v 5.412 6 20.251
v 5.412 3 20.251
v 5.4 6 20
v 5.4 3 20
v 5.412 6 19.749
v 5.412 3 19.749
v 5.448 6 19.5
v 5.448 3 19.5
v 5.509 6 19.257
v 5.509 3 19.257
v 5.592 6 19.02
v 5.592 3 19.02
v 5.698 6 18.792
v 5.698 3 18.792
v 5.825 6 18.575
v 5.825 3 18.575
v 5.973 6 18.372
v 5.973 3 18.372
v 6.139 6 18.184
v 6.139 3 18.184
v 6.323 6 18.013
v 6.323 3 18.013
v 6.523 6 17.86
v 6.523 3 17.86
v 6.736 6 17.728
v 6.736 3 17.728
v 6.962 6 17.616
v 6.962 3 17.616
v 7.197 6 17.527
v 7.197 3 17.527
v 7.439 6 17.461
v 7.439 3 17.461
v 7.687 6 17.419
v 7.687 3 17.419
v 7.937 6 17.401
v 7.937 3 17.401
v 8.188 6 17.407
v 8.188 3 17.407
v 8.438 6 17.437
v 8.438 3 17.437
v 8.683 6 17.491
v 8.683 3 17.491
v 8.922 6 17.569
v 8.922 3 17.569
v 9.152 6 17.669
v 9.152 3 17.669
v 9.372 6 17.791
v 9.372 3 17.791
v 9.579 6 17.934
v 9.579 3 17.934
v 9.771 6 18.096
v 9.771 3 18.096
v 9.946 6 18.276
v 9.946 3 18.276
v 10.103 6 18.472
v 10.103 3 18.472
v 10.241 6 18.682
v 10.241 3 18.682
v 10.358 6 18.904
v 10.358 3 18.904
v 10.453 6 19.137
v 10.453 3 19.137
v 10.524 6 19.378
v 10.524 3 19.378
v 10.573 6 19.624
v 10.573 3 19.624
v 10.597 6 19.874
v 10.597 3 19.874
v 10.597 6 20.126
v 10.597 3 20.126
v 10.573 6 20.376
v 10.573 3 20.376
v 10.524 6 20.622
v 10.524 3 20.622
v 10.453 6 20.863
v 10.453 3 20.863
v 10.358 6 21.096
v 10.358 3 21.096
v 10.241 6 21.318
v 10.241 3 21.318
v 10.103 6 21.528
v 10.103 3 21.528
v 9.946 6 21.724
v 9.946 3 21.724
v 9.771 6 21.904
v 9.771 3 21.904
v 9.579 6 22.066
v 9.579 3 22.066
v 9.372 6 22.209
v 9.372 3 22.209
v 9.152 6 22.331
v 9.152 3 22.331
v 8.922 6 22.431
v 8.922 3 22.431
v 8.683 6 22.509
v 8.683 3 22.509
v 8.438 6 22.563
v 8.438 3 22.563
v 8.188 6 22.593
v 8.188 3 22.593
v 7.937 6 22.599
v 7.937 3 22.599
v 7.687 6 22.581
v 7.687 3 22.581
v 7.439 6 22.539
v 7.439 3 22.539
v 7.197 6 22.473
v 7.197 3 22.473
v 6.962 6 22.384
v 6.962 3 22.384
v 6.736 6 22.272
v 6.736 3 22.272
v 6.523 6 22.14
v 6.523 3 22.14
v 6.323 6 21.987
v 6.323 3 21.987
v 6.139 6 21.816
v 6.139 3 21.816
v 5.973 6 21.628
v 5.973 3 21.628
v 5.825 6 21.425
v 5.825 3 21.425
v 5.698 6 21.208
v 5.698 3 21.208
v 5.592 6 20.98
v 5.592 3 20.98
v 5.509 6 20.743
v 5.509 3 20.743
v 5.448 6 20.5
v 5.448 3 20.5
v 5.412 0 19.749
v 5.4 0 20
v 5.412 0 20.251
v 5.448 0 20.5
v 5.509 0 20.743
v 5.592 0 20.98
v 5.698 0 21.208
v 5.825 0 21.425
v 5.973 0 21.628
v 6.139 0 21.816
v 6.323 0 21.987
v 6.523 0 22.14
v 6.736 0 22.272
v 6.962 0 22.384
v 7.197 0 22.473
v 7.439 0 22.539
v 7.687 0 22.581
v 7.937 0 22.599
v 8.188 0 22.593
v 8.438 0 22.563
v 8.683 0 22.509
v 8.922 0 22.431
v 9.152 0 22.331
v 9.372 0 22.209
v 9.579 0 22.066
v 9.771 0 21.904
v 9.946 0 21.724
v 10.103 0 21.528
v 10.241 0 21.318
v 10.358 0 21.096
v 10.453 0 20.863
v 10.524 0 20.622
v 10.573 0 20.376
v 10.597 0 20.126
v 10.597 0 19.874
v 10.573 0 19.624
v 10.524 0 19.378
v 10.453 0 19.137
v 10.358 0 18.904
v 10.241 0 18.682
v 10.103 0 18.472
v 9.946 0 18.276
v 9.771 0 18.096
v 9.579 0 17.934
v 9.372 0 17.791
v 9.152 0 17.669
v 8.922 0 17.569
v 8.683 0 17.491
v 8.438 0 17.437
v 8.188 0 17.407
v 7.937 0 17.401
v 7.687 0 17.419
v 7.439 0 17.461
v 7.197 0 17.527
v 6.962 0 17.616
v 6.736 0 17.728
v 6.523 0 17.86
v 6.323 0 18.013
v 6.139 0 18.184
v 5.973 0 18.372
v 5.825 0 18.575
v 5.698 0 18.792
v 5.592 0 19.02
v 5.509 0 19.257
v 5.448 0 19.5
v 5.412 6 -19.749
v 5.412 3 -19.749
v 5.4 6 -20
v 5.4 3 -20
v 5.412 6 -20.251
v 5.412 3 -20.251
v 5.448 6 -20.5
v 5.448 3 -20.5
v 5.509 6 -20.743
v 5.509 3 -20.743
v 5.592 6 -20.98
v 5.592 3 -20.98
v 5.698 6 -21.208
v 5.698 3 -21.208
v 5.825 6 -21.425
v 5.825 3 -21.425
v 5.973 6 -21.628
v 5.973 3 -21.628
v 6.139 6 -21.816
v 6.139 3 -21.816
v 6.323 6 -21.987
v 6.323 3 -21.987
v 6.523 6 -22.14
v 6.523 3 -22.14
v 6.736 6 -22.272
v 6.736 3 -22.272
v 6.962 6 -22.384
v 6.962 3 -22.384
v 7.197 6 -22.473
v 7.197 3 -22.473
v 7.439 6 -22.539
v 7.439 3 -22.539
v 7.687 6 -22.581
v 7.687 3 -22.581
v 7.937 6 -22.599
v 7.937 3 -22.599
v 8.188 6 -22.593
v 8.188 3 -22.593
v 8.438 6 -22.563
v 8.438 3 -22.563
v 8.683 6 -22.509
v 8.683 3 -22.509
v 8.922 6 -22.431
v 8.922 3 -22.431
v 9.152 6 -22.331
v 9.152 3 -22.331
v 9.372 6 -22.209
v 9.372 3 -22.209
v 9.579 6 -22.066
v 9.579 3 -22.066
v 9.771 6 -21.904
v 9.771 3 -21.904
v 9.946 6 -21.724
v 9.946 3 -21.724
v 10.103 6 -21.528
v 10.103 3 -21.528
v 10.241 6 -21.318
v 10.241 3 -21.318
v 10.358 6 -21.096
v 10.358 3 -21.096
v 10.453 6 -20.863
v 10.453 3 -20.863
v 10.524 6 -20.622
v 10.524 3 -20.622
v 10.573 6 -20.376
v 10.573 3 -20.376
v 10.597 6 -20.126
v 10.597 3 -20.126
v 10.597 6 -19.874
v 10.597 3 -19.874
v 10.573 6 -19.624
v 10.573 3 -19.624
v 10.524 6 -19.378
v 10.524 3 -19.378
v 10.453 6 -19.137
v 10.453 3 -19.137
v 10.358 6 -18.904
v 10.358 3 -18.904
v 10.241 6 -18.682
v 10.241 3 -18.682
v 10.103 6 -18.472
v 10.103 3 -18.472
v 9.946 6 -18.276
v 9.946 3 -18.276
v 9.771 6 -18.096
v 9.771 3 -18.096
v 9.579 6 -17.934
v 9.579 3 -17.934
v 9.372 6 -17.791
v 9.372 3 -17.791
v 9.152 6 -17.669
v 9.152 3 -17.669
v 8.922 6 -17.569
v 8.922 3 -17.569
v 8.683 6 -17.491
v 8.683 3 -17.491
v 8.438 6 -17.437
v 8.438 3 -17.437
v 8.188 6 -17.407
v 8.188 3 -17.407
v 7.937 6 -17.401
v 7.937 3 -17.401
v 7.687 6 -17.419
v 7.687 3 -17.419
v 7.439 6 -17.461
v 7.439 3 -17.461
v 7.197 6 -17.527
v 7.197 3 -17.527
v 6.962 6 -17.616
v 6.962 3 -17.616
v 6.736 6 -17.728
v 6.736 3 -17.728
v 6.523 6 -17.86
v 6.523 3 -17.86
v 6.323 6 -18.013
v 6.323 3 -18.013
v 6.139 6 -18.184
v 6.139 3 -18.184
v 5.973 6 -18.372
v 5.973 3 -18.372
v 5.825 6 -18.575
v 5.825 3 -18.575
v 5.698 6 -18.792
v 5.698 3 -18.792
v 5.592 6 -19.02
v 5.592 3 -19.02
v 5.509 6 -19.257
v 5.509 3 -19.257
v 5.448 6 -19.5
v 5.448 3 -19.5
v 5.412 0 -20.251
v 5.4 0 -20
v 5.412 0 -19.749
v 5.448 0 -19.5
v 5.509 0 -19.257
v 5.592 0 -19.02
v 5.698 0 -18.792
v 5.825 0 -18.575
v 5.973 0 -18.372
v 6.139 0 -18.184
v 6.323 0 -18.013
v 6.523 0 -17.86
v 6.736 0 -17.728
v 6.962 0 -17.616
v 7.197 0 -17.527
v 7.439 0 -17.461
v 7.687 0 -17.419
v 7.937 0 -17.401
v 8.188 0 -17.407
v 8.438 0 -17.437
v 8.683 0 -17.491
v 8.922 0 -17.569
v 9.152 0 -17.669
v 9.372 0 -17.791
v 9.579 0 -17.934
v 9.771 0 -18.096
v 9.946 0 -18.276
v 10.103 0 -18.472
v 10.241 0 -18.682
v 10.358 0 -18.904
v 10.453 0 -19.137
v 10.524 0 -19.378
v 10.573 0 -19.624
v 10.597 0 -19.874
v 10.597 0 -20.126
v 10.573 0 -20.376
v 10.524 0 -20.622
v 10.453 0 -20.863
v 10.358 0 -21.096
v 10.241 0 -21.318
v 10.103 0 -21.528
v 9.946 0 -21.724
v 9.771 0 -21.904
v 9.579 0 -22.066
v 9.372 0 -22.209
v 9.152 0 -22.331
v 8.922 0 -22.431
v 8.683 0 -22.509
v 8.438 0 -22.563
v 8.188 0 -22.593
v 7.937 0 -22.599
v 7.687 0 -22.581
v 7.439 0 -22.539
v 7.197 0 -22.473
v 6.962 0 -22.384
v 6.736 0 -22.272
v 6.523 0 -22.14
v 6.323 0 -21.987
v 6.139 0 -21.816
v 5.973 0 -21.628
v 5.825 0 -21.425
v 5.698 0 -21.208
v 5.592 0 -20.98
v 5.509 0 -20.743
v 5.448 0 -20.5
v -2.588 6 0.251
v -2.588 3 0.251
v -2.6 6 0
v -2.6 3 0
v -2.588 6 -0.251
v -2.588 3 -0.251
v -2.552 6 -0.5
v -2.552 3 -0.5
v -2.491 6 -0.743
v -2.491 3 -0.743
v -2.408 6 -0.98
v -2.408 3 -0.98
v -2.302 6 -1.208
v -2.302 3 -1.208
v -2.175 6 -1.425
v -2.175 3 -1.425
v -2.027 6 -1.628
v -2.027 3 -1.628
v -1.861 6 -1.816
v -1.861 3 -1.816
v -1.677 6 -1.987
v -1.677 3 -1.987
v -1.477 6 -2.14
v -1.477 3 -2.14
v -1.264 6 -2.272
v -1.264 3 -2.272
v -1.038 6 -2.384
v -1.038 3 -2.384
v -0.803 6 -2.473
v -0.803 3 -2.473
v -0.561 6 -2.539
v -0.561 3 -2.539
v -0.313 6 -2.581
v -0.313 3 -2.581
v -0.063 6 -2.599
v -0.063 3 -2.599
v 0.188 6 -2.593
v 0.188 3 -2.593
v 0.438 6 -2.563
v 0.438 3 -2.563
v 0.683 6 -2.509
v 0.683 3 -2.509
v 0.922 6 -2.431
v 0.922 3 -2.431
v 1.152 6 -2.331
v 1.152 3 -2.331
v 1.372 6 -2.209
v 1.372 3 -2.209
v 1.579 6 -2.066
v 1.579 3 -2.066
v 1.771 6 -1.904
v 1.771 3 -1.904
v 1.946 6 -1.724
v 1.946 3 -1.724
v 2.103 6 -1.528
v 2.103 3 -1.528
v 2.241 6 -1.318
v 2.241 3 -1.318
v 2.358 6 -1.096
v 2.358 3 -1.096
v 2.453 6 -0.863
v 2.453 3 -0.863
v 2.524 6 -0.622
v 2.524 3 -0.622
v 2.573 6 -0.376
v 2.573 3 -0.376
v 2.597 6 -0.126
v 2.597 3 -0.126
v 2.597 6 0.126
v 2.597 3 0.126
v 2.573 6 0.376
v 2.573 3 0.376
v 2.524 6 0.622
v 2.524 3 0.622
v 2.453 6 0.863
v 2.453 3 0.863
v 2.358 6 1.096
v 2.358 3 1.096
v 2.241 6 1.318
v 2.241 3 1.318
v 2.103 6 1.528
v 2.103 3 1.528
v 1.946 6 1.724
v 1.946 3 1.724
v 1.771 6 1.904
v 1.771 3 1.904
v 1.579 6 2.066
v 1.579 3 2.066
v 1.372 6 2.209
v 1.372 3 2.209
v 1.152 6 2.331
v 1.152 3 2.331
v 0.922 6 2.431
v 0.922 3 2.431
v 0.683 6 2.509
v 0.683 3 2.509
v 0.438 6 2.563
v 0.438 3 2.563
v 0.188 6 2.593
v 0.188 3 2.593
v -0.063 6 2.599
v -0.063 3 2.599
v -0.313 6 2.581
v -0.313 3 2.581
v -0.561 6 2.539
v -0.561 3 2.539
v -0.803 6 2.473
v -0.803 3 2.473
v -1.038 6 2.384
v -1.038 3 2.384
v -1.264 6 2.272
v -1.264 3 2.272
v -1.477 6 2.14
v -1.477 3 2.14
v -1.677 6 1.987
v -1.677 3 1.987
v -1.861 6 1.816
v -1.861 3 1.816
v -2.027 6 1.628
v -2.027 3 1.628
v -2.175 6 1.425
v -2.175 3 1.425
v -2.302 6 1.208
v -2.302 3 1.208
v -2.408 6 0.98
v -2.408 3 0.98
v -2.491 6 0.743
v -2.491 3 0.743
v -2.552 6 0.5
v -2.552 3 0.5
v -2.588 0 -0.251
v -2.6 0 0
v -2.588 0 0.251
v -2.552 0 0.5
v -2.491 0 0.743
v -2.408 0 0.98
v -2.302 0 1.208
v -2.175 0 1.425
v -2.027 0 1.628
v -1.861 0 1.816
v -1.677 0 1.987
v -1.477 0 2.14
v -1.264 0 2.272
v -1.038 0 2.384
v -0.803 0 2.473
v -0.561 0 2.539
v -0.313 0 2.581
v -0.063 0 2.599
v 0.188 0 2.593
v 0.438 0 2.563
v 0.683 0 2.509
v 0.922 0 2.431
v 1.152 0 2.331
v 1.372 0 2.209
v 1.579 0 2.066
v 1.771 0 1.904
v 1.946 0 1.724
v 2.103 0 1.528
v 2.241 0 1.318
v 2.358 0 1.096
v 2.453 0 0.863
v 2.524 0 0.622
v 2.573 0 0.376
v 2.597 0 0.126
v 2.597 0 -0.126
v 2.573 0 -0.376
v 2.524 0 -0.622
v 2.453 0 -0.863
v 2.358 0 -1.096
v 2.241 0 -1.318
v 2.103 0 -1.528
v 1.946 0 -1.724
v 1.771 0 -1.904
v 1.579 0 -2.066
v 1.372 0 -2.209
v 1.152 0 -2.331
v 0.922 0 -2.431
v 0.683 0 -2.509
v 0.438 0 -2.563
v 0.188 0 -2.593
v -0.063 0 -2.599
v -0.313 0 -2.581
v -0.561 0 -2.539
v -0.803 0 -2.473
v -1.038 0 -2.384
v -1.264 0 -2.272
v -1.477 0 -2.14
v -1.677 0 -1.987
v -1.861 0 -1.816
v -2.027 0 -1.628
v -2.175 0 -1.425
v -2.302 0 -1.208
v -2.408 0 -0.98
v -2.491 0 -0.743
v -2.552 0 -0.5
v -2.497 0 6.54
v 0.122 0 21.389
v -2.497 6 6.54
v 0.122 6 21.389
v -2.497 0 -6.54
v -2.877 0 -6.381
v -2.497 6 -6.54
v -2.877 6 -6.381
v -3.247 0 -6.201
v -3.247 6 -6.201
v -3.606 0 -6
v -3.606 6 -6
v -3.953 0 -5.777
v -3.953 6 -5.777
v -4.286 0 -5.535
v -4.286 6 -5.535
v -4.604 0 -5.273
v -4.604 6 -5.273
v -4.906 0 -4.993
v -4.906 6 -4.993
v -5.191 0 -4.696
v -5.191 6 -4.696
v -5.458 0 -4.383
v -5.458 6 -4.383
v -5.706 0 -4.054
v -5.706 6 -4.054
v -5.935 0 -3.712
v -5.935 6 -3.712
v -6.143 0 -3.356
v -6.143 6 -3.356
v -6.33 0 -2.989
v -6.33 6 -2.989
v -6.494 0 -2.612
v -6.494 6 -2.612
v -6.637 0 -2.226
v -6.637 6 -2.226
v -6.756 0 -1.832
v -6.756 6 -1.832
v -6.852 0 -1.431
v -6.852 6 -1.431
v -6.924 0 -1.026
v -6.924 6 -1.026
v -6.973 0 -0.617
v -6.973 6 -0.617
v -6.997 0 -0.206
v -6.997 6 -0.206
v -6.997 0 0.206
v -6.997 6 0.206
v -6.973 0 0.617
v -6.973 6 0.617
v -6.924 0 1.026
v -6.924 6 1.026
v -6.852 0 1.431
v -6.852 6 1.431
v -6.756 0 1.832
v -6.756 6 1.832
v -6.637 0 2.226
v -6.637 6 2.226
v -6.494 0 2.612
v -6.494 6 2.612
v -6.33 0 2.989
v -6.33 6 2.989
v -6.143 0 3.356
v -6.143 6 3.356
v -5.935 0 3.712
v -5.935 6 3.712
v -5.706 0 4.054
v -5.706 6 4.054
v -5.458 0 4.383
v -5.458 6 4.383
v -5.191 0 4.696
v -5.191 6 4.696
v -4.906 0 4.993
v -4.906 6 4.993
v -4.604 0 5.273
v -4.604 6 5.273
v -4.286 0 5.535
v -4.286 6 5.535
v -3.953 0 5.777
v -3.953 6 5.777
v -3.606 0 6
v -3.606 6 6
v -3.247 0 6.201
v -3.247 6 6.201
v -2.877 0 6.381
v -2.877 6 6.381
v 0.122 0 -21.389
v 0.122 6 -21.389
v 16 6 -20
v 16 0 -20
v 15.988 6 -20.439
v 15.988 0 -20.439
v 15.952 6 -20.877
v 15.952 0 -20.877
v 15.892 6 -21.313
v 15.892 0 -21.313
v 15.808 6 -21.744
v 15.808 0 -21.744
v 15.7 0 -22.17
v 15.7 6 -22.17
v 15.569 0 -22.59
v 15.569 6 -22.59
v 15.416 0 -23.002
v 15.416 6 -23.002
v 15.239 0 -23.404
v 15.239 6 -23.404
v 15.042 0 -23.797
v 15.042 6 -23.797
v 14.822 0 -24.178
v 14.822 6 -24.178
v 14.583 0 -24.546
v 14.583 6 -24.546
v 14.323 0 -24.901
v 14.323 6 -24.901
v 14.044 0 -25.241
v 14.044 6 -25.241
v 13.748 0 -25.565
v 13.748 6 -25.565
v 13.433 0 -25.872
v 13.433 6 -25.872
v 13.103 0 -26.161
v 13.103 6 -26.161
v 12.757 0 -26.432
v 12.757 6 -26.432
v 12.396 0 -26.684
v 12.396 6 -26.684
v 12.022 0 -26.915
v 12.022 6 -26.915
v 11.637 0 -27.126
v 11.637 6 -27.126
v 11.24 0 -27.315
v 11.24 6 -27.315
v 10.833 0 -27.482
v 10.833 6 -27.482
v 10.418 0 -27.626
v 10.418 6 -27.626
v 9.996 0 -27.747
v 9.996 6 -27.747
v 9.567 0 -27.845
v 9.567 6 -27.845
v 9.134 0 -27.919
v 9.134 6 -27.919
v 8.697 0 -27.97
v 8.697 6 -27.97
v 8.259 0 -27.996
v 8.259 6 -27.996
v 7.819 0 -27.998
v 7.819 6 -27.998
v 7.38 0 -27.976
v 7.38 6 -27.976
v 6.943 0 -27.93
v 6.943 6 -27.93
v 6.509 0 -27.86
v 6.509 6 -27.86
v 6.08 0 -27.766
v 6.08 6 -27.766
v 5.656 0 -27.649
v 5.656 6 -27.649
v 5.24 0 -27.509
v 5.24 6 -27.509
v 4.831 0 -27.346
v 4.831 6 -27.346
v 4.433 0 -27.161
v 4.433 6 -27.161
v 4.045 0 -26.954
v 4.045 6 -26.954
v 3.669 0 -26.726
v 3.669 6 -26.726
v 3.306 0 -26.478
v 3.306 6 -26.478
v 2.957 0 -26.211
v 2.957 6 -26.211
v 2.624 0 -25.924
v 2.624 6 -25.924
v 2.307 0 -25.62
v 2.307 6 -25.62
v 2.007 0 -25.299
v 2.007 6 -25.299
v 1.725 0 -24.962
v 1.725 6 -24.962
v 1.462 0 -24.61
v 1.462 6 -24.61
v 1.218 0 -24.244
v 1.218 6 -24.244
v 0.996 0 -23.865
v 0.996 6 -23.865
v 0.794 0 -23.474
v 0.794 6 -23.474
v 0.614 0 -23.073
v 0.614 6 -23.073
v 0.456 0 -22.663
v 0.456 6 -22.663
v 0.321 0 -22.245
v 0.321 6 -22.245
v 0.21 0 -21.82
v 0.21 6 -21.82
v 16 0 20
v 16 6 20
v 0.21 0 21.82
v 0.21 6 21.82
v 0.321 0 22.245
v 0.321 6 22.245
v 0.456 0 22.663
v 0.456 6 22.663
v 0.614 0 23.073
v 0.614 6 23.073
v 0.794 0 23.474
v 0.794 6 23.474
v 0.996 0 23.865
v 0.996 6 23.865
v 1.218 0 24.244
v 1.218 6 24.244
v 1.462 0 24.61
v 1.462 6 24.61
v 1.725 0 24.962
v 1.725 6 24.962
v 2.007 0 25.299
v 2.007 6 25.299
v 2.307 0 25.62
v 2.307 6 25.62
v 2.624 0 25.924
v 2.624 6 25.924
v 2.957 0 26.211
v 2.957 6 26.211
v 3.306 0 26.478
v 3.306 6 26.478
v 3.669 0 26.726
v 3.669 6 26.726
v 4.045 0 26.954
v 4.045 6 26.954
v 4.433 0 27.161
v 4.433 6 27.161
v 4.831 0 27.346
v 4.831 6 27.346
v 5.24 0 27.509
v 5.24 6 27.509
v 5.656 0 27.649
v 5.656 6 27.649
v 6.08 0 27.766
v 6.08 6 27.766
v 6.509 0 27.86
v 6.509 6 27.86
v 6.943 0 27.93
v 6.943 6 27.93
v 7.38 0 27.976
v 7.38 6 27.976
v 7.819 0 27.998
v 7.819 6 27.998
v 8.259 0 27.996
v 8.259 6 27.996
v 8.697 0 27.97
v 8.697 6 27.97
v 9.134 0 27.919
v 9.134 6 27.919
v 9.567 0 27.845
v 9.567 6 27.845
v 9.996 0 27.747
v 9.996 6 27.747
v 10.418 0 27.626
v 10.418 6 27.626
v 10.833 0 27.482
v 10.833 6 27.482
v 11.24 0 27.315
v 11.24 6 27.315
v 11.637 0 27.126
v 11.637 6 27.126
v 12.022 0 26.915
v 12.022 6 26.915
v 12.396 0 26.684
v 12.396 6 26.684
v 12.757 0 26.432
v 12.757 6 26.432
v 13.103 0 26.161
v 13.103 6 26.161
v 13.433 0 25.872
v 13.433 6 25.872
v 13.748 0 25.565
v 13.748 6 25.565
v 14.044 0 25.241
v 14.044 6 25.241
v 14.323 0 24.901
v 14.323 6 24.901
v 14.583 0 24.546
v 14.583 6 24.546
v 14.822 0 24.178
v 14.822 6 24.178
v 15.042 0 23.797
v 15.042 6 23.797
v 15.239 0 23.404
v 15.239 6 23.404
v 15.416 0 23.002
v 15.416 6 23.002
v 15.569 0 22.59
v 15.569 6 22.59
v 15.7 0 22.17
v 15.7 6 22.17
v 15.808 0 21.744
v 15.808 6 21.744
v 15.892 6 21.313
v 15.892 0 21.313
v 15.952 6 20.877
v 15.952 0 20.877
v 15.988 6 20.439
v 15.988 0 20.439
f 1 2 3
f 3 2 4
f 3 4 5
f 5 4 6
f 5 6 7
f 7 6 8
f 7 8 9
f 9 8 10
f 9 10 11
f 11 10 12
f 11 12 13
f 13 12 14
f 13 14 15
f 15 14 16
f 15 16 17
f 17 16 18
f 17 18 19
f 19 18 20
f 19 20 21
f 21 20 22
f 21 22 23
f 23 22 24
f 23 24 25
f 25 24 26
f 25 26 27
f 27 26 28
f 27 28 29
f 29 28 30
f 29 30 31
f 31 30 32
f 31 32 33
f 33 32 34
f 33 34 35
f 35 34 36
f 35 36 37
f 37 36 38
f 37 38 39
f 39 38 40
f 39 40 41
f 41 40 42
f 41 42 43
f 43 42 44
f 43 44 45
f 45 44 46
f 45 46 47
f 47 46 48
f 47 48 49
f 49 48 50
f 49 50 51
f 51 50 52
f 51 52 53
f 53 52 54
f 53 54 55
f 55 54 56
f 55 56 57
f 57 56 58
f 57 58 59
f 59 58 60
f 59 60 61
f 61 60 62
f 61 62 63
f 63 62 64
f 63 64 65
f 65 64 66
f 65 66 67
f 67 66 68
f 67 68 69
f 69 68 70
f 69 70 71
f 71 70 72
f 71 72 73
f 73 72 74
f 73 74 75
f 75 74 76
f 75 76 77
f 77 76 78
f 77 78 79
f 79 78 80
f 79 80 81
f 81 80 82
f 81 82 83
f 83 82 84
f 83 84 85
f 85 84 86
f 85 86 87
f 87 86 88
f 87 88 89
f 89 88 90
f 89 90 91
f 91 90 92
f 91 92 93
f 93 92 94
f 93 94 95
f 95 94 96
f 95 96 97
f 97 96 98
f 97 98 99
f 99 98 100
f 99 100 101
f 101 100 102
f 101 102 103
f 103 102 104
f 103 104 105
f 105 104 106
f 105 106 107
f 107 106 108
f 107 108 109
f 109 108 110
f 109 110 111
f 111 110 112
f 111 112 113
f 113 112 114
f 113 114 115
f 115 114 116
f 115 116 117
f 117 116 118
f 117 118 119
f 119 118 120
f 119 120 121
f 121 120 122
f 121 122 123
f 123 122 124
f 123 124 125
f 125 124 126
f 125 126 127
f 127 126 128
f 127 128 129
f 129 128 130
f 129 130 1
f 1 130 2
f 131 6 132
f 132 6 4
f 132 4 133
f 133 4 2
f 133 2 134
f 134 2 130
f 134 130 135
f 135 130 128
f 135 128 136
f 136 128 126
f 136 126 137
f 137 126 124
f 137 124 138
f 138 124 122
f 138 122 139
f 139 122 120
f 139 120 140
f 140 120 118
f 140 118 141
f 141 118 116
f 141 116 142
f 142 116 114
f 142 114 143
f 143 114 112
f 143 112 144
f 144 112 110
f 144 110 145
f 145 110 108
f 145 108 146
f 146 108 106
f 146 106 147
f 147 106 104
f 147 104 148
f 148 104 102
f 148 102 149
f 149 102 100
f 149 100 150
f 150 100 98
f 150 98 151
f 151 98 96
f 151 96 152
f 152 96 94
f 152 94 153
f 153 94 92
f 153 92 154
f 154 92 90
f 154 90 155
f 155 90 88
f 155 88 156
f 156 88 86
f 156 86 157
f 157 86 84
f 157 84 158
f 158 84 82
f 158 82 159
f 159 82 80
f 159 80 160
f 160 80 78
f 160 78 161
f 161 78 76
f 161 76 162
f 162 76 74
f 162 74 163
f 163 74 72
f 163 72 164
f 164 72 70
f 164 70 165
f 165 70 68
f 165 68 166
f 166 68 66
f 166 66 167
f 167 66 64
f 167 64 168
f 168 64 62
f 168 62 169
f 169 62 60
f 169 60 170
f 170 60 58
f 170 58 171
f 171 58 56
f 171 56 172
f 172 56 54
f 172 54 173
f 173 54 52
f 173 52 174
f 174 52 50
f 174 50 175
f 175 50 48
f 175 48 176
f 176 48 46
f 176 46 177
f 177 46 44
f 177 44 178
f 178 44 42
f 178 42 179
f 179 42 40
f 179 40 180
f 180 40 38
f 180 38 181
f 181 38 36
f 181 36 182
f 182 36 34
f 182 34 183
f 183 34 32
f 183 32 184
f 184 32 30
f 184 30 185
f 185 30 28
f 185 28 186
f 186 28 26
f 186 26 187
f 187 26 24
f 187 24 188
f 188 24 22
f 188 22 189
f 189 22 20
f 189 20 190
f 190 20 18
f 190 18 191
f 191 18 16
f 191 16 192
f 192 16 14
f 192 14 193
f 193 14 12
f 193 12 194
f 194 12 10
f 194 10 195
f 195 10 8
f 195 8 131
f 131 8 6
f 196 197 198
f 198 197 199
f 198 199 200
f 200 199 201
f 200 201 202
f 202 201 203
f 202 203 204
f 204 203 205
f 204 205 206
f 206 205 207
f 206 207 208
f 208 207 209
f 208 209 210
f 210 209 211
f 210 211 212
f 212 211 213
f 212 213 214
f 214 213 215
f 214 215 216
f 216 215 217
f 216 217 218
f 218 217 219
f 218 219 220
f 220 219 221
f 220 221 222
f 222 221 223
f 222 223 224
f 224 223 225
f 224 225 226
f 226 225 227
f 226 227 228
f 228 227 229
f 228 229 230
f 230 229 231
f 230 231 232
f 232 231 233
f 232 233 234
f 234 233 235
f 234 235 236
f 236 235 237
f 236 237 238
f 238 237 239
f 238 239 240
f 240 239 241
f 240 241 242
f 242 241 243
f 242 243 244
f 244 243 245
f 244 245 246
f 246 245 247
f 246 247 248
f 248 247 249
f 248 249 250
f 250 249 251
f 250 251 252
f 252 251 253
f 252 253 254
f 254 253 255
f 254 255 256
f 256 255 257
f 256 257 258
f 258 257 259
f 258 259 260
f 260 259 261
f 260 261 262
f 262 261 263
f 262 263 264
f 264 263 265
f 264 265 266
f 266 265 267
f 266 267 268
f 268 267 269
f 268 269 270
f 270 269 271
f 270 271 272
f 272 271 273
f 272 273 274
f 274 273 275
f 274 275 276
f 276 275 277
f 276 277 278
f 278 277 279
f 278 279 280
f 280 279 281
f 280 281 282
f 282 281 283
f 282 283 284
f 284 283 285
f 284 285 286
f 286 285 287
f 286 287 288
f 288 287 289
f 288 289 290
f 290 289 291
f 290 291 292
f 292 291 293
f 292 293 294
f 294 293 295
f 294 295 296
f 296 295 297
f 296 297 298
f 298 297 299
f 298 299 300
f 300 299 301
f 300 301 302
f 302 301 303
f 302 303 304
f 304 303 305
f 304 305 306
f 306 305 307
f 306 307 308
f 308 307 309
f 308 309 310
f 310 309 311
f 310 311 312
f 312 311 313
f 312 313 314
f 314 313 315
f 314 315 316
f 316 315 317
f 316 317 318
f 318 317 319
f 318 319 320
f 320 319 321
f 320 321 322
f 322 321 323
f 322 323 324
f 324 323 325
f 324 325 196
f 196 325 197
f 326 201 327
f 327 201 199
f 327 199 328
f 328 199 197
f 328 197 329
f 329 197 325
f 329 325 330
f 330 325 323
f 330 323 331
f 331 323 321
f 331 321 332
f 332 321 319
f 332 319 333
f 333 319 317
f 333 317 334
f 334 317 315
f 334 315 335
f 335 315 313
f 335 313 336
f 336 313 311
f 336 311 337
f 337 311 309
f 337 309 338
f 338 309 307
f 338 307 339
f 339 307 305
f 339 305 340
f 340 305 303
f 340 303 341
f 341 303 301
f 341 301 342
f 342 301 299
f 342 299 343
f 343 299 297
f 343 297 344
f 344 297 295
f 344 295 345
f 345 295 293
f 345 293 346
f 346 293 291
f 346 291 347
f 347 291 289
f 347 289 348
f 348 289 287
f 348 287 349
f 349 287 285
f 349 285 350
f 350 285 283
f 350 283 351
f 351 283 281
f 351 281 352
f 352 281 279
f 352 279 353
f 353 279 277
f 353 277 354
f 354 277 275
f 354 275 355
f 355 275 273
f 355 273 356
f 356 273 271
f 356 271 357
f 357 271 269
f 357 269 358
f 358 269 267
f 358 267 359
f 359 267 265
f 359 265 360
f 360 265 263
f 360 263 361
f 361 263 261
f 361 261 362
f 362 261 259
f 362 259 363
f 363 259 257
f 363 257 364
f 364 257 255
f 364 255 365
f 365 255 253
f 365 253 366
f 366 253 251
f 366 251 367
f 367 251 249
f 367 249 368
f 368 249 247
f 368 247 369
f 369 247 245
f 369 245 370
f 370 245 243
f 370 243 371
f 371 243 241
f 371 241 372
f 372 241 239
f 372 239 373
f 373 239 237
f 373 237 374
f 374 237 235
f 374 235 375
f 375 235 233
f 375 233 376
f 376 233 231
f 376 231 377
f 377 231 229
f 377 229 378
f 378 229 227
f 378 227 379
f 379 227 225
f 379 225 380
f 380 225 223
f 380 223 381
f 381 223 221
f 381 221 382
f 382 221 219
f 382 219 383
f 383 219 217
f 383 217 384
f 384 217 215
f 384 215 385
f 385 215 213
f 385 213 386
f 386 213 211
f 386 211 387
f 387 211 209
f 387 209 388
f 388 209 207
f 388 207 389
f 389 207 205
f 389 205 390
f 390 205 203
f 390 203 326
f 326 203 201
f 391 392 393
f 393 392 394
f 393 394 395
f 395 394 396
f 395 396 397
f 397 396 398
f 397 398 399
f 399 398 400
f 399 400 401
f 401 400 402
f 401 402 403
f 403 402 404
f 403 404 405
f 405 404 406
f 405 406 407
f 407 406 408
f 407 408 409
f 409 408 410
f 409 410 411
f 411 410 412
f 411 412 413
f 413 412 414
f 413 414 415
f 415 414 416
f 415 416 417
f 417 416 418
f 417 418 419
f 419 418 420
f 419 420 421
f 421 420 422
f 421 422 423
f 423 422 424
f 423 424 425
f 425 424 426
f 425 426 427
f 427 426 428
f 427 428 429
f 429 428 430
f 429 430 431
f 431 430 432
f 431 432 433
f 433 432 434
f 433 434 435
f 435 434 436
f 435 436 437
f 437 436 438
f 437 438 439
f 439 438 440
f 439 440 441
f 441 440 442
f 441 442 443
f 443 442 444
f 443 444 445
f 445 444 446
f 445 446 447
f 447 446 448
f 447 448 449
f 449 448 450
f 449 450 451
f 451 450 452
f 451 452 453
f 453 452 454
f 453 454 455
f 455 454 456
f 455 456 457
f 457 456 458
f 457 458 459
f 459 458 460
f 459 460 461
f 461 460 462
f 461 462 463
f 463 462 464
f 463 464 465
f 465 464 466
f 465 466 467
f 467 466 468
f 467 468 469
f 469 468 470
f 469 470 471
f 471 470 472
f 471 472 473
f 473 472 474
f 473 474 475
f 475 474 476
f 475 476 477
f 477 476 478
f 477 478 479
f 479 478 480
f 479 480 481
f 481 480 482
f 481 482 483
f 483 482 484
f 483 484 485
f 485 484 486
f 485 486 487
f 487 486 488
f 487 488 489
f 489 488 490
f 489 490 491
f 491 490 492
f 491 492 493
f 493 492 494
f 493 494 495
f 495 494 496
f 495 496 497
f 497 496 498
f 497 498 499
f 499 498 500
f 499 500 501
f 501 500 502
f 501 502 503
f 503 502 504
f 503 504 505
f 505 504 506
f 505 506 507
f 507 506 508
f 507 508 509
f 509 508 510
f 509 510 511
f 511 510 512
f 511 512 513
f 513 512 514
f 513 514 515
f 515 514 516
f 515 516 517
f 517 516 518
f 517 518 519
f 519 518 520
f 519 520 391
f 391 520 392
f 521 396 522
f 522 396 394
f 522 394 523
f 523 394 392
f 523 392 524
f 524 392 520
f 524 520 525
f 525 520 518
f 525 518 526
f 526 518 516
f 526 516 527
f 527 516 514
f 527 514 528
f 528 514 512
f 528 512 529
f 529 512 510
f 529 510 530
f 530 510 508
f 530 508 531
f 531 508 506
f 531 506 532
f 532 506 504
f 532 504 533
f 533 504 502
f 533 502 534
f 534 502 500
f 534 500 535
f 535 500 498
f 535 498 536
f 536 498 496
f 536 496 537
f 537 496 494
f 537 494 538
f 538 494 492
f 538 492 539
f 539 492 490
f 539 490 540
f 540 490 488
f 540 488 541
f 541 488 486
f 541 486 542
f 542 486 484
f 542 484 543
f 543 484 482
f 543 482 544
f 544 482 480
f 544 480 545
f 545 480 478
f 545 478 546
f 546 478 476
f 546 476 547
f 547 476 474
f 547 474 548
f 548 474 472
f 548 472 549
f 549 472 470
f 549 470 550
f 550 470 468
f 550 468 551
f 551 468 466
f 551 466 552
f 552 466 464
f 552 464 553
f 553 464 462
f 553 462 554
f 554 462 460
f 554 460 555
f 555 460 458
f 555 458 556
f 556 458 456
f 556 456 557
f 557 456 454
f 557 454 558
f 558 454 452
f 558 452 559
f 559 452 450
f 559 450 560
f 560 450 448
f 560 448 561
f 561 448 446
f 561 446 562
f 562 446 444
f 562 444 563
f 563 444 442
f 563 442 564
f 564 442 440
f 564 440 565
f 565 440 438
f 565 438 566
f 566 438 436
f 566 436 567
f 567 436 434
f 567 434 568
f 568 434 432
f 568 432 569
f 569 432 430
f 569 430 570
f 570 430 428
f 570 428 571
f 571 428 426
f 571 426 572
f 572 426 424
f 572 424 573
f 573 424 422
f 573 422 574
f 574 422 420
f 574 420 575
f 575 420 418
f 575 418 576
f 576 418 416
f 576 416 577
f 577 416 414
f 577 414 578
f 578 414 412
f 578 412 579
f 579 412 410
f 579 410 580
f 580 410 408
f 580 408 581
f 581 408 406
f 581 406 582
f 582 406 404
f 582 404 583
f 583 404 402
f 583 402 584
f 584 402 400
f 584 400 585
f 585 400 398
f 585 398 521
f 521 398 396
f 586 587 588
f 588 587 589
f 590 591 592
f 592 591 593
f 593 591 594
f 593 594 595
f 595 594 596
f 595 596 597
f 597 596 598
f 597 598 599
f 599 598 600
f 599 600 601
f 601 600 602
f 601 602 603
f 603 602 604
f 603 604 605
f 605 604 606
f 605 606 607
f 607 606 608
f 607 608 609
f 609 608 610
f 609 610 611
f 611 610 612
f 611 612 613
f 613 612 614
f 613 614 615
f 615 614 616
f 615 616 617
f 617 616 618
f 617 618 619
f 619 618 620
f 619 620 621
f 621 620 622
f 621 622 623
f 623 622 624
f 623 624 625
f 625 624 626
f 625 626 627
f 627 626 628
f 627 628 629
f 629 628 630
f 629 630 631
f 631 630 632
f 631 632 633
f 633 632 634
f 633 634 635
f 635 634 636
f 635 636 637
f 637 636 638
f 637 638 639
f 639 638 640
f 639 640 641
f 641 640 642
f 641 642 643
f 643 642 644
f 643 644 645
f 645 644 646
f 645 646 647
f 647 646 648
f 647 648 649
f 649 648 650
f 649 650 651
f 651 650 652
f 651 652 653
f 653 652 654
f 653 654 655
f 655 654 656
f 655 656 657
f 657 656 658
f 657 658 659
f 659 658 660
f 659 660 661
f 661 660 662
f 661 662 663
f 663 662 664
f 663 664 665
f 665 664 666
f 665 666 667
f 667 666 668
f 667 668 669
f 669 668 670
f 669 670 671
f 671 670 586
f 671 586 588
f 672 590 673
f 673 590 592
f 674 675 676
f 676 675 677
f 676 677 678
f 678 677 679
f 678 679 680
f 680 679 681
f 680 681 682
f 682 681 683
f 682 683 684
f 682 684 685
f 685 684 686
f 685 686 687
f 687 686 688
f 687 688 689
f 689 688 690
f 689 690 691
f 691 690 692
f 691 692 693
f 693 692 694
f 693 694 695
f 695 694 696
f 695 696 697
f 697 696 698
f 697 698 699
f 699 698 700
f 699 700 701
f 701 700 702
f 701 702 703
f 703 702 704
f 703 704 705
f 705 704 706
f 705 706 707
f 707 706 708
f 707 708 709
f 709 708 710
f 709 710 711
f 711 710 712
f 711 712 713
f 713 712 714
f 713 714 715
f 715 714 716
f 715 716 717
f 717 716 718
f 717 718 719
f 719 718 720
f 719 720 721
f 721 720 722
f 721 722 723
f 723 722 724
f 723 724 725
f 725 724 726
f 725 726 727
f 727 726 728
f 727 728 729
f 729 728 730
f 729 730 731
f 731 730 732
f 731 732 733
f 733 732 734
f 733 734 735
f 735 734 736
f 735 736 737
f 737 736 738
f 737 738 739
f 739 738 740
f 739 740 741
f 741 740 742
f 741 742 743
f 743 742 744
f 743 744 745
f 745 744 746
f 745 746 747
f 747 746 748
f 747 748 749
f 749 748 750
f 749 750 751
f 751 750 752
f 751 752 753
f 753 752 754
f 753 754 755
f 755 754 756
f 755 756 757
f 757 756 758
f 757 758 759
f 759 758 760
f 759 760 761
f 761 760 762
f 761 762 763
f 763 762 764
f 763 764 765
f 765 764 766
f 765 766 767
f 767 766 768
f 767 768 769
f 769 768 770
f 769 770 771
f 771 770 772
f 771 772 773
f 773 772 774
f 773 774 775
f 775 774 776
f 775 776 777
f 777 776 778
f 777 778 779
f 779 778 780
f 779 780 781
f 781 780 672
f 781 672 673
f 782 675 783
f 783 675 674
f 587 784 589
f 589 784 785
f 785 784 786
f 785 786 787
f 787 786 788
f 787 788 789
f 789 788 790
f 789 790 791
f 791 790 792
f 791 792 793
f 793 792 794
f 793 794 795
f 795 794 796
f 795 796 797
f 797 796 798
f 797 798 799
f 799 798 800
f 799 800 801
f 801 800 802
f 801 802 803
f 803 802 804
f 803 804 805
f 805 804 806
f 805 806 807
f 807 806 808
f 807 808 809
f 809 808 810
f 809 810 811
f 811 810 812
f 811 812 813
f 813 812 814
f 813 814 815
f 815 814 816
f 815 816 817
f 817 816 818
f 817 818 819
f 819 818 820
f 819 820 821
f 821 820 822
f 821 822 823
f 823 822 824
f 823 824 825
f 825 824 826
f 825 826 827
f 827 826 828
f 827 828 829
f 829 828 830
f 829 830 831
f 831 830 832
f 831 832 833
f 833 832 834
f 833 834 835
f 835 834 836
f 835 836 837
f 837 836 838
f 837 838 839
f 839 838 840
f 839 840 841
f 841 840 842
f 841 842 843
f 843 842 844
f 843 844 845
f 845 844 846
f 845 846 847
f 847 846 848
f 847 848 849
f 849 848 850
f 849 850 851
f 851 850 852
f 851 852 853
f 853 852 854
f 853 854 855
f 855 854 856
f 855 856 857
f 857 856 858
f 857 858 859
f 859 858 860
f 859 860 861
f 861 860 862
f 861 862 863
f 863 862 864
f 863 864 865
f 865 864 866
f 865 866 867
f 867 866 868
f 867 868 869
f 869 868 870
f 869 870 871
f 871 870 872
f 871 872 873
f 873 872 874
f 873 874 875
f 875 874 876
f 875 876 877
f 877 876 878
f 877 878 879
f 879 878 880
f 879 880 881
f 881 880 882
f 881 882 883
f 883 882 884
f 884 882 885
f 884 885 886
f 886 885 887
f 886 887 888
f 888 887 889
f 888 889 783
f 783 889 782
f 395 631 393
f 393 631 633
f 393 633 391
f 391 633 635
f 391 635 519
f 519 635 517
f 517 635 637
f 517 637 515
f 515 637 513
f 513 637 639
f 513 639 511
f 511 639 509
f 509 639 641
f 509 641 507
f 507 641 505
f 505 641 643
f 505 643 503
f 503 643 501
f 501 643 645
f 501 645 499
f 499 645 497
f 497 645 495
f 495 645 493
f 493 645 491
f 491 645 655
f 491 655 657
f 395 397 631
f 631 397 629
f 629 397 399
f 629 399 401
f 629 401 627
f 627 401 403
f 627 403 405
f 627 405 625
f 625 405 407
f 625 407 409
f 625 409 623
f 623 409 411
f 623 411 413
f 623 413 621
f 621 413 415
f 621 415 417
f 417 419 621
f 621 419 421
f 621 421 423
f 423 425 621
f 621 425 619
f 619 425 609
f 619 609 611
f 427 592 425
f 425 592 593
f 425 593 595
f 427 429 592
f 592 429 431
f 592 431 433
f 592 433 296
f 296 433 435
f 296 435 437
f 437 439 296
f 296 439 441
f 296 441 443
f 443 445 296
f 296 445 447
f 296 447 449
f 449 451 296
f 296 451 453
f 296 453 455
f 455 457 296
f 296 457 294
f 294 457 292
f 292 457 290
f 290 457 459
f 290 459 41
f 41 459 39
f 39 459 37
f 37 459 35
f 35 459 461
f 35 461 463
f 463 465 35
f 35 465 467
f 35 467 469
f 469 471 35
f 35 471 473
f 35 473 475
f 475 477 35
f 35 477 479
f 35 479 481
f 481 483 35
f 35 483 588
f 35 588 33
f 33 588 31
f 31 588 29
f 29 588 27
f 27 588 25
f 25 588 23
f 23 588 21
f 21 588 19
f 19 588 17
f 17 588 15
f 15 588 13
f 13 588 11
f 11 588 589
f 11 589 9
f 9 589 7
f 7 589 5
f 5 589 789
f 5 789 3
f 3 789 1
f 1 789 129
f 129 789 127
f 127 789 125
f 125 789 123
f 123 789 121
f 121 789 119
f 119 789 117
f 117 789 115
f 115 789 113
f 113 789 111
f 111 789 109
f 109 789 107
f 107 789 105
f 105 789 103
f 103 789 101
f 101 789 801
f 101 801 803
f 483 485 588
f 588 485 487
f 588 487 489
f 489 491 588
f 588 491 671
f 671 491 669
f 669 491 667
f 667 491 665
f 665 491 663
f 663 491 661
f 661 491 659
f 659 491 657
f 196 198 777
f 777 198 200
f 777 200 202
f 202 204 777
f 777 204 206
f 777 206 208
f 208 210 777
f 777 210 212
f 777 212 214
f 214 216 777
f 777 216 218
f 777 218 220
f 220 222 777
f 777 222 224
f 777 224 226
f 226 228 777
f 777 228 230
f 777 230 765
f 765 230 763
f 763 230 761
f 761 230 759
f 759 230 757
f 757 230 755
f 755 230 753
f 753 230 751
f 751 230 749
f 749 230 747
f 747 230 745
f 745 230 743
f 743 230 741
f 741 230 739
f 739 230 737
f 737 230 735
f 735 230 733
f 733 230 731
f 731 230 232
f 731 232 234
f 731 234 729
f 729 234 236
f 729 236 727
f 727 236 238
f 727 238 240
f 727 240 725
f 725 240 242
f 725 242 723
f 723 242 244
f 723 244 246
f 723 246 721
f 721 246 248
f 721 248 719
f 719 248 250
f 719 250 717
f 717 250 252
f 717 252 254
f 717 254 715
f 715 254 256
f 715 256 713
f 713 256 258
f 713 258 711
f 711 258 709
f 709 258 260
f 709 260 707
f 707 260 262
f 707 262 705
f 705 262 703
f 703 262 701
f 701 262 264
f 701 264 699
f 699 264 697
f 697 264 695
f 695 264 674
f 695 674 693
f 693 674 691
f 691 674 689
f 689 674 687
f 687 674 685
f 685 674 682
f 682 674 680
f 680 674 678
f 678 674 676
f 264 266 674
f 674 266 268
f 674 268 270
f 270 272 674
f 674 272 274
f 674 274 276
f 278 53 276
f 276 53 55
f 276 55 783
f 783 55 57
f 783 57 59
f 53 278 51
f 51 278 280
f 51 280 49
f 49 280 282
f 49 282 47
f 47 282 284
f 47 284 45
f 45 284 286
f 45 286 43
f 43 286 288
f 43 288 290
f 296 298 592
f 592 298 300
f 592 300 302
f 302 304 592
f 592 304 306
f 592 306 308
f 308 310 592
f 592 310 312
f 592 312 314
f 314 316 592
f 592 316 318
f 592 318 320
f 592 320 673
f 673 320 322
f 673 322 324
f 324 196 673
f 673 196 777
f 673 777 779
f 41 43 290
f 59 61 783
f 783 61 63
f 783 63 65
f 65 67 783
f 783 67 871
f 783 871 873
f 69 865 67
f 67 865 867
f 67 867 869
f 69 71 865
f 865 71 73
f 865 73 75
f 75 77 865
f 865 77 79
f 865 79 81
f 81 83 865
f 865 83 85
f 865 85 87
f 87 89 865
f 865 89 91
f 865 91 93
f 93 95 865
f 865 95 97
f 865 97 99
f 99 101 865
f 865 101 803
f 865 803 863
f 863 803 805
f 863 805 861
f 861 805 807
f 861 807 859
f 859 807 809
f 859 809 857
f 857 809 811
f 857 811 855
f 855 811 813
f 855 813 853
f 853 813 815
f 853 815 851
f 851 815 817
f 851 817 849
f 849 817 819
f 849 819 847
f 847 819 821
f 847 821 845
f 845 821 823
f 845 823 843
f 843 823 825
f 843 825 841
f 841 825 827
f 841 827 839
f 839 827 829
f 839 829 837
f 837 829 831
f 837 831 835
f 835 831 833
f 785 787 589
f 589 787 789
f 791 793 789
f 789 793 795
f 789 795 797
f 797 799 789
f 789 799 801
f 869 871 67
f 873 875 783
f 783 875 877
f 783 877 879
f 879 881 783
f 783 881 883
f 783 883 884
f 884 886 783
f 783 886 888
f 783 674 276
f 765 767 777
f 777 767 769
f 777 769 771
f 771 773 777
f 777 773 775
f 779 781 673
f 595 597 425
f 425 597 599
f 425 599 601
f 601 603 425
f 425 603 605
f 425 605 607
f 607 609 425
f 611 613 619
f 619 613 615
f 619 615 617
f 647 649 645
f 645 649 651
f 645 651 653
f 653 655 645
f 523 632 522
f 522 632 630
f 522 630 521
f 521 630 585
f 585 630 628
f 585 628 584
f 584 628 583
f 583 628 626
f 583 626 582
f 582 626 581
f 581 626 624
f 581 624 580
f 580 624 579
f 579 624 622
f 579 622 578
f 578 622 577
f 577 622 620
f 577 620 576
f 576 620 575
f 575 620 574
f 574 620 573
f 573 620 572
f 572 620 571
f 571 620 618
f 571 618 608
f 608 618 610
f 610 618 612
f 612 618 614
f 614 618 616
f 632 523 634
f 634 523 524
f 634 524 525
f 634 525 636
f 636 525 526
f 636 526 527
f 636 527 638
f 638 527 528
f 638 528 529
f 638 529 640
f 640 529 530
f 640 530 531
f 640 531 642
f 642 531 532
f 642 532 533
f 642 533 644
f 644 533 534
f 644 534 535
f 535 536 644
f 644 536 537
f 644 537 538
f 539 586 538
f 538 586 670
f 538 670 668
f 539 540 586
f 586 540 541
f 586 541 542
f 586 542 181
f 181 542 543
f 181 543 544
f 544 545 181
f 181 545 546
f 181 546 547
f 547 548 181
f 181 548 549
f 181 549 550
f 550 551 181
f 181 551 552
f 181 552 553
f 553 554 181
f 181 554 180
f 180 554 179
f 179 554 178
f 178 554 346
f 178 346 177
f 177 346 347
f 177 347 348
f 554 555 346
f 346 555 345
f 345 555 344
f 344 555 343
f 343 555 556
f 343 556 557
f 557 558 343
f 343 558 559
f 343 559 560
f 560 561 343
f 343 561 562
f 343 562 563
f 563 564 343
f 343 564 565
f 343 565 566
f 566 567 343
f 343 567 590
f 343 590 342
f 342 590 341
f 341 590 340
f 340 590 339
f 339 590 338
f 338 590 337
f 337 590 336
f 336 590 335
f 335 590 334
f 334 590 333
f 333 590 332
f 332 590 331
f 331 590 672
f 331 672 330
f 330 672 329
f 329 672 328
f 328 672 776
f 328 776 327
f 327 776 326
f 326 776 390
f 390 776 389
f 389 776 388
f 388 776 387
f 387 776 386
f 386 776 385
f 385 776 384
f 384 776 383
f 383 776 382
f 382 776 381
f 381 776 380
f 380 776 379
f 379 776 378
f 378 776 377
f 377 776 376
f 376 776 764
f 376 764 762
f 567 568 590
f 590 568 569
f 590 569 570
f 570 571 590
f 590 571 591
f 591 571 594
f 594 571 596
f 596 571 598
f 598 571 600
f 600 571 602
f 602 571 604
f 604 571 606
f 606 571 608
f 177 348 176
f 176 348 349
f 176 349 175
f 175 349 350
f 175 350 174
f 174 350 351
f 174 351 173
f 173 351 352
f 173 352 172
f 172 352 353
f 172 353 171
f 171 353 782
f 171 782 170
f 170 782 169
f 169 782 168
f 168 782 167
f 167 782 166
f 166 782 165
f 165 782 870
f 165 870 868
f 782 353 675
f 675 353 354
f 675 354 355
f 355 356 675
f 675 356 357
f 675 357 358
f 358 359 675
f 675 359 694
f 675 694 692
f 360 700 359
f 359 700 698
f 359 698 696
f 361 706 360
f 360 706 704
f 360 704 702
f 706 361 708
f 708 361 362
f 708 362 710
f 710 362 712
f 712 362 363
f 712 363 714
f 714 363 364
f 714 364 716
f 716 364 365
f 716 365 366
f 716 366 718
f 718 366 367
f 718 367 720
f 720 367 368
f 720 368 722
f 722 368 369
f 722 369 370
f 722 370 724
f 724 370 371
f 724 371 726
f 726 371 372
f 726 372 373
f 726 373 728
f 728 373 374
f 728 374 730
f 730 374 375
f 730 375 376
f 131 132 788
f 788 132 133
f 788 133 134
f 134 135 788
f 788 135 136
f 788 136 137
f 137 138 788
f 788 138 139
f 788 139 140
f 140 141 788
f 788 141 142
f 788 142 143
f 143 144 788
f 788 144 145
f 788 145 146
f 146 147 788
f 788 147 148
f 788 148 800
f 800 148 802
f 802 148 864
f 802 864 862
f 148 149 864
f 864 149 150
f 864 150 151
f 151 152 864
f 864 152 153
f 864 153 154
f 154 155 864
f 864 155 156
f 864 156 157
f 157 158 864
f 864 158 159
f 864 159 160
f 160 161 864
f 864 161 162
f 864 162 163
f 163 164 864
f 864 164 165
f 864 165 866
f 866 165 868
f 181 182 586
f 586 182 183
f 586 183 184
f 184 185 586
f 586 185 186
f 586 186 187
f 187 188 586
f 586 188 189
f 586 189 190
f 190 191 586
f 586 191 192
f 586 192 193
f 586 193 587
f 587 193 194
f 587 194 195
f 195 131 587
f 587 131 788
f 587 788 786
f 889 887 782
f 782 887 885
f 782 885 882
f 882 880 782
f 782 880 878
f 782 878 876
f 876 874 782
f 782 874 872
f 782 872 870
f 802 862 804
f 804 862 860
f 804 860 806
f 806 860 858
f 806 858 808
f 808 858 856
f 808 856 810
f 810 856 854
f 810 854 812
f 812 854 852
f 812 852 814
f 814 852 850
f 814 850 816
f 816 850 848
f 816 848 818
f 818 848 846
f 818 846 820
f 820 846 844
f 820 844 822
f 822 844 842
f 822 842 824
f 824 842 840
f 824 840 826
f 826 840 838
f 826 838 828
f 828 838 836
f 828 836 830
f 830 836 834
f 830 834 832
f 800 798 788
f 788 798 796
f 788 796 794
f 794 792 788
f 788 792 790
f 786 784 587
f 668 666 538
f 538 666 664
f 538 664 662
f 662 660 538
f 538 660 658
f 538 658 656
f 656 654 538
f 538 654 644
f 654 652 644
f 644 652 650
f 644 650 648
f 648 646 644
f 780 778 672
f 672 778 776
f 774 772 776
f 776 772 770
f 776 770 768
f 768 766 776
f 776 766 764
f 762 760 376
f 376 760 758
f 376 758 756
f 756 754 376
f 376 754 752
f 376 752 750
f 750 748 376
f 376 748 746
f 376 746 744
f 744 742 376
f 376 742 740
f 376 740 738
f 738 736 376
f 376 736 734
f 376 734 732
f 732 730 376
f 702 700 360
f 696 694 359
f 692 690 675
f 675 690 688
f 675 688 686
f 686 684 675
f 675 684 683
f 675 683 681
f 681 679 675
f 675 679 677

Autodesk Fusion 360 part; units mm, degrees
sketch "Sketch1" plane through (0, 0, 0) normal (0, 1, 0) x (1, 0, 0)
  line L0 (0, 0) -> (0, -20) construction
  circle A0 centre (0, 0) radius 2.6
  circle A1 centre (8, -20) radius 2.6
  line L1 (0, -20) -> (8, -20) construction
  line L2 (0, 0) -> (18.1281, 0) construction
  circle A2 centre (8, 20) radius 2.6
  circle A3 centre (8, 20) radius 8
  circle A4 centre (0, 0) radius 7
  circle A5 centre (8, -20) radius 8
  line L3 (16, 20) -> (16, -20)
  line L4 (0.4465, 22.6352) -> (0.4465, 23.2319)
  line L5 (0.4465, 23.2319) -> (-2.4969, 6.5396)
  line L6 (0.4465, -23.2319) -> (-2.4969, -6.5396)
  dimension "d1" = 5.2
  dimension "d2" = 8
  dimension "d3" = 20
  dimension "d4" = 16
  dimension "d5" = 14
  dimension "d8" = 10
extrude "Extrude1" add sketch "Sketch1" along normal blind 6 contours A3 | A3 A4 A5 L3 L5 L6 | A5 | A4
